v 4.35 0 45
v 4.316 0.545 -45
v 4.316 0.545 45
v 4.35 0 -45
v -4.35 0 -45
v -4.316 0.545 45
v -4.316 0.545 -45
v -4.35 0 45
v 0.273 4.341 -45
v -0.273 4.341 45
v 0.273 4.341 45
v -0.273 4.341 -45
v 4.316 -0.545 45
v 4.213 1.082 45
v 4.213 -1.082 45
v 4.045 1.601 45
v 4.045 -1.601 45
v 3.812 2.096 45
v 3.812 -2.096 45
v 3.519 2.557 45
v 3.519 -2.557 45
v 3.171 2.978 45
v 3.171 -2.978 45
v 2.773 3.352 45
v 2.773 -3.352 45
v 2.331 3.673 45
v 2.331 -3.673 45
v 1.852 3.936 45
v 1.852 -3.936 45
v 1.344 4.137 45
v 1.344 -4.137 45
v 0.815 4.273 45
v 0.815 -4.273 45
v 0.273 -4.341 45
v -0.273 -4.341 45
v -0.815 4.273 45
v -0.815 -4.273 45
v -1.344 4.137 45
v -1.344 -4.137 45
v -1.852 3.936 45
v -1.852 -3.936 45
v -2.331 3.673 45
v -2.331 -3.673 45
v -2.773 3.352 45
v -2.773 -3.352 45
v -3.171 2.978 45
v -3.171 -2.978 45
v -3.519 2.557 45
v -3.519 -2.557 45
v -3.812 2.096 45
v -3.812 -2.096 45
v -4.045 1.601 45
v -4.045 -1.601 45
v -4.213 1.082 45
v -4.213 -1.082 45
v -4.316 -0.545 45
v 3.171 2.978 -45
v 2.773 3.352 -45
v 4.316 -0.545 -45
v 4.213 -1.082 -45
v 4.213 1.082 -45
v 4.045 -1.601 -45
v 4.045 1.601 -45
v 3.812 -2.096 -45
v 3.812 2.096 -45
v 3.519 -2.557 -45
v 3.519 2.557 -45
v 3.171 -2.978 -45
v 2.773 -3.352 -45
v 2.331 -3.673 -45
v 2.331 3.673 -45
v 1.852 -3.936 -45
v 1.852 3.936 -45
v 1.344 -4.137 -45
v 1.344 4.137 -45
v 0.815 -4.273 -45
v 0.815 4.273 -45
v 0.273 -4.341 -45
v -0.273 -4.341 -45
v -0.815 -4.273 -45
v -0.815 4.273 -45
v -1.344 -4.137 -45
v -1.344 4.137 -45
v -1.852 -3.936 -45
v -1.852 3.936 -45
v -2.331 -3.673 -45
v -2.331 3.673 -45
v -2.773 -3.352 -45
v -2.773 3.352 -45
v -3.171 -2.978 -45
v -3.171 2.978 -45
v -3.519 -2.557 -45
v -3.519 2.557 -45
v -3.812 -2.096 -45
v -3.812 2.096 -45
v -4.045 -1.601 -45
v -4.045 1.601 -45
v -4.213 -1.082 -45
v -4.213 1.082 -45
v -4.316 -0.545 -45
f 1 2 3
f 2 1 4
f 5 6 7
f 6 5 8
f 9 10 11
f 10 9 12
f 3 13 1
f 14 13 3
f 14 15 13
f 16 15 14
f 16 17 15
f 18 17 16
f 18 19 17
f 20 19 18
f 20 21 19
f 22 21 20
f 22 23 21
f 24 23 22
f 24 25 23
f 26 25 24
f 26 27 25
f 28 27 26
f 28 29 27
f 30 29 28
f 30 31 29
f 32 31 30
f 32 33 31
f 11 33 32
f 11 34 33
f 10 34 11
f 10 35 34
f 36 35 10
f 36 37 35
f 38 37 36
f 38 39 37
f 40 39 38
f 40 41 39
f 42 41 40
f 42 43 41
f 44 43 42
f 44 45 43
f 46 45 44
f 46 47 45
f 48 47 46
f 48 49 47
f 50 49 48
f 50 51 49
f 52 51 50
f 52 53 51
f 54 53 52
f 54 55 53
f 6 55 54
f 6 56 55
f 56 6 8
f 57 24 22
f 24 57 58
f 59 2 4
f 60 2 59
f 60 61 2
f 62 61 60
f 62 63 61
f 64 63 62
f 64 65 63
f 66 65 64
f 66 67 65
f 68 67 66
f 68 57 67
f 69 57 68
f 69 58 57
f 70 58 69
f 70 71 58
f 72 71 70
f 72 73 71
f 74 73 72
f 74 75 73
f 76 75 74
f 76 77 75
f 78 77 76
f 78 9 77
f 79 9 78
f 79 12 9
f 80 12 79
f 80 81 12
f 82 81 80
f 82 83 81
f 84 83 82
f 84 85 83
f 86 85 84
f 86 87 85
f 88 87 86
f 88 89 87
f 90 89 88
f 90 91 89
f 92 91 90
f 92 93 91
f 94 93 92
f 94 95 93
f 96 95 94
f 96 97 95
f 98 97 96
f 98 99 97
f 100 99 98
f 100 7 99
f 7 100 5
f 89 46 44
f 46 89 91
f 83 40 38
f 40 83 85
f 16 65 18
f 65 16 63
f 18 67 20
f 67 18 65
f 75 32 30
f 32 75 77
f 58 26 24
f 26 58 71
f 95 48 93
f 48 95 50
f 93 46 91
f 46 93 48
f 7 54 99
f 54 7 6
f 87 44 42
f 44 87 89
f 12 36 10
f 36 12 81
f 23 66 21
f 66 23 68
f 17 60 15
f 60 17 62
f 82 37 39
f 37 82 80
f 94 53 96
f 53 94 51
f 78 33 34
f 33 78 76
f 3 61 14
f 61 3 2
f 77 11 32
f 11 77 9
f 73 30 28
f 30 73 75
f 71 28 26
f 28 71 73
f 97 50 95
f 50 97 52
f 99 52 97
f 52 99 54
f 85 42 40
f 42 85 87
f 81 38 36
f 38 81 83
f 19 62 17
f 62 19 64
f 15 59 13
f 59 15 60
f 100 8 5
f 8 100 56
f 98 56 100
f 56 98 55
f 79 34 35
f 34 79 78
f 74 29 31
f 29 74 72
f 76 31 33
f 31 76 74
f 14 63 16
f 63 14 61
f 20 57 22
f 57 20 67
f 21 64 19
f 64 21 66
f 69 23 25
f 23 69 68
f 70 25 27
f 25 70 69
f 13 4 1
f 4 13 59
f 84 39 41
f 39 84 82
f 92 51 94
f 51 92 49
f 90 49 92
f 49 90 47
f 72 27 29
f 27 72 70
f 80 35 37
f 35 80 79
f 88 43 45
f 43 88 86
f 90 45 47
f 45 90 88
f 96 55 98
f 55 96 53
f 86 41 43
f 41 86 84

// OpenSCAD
$fn = 50;


difference() {
	union() {
		translate(v = [0, 0, -45.0000000000]) {
			cylinder(h = 90, r = 4.3500000000);
		}
	}
	union() {
		translate(v = [0, 0, -100.0000000000]) {
			cylinder(h = 200, r = 0);
		}
	}
}
